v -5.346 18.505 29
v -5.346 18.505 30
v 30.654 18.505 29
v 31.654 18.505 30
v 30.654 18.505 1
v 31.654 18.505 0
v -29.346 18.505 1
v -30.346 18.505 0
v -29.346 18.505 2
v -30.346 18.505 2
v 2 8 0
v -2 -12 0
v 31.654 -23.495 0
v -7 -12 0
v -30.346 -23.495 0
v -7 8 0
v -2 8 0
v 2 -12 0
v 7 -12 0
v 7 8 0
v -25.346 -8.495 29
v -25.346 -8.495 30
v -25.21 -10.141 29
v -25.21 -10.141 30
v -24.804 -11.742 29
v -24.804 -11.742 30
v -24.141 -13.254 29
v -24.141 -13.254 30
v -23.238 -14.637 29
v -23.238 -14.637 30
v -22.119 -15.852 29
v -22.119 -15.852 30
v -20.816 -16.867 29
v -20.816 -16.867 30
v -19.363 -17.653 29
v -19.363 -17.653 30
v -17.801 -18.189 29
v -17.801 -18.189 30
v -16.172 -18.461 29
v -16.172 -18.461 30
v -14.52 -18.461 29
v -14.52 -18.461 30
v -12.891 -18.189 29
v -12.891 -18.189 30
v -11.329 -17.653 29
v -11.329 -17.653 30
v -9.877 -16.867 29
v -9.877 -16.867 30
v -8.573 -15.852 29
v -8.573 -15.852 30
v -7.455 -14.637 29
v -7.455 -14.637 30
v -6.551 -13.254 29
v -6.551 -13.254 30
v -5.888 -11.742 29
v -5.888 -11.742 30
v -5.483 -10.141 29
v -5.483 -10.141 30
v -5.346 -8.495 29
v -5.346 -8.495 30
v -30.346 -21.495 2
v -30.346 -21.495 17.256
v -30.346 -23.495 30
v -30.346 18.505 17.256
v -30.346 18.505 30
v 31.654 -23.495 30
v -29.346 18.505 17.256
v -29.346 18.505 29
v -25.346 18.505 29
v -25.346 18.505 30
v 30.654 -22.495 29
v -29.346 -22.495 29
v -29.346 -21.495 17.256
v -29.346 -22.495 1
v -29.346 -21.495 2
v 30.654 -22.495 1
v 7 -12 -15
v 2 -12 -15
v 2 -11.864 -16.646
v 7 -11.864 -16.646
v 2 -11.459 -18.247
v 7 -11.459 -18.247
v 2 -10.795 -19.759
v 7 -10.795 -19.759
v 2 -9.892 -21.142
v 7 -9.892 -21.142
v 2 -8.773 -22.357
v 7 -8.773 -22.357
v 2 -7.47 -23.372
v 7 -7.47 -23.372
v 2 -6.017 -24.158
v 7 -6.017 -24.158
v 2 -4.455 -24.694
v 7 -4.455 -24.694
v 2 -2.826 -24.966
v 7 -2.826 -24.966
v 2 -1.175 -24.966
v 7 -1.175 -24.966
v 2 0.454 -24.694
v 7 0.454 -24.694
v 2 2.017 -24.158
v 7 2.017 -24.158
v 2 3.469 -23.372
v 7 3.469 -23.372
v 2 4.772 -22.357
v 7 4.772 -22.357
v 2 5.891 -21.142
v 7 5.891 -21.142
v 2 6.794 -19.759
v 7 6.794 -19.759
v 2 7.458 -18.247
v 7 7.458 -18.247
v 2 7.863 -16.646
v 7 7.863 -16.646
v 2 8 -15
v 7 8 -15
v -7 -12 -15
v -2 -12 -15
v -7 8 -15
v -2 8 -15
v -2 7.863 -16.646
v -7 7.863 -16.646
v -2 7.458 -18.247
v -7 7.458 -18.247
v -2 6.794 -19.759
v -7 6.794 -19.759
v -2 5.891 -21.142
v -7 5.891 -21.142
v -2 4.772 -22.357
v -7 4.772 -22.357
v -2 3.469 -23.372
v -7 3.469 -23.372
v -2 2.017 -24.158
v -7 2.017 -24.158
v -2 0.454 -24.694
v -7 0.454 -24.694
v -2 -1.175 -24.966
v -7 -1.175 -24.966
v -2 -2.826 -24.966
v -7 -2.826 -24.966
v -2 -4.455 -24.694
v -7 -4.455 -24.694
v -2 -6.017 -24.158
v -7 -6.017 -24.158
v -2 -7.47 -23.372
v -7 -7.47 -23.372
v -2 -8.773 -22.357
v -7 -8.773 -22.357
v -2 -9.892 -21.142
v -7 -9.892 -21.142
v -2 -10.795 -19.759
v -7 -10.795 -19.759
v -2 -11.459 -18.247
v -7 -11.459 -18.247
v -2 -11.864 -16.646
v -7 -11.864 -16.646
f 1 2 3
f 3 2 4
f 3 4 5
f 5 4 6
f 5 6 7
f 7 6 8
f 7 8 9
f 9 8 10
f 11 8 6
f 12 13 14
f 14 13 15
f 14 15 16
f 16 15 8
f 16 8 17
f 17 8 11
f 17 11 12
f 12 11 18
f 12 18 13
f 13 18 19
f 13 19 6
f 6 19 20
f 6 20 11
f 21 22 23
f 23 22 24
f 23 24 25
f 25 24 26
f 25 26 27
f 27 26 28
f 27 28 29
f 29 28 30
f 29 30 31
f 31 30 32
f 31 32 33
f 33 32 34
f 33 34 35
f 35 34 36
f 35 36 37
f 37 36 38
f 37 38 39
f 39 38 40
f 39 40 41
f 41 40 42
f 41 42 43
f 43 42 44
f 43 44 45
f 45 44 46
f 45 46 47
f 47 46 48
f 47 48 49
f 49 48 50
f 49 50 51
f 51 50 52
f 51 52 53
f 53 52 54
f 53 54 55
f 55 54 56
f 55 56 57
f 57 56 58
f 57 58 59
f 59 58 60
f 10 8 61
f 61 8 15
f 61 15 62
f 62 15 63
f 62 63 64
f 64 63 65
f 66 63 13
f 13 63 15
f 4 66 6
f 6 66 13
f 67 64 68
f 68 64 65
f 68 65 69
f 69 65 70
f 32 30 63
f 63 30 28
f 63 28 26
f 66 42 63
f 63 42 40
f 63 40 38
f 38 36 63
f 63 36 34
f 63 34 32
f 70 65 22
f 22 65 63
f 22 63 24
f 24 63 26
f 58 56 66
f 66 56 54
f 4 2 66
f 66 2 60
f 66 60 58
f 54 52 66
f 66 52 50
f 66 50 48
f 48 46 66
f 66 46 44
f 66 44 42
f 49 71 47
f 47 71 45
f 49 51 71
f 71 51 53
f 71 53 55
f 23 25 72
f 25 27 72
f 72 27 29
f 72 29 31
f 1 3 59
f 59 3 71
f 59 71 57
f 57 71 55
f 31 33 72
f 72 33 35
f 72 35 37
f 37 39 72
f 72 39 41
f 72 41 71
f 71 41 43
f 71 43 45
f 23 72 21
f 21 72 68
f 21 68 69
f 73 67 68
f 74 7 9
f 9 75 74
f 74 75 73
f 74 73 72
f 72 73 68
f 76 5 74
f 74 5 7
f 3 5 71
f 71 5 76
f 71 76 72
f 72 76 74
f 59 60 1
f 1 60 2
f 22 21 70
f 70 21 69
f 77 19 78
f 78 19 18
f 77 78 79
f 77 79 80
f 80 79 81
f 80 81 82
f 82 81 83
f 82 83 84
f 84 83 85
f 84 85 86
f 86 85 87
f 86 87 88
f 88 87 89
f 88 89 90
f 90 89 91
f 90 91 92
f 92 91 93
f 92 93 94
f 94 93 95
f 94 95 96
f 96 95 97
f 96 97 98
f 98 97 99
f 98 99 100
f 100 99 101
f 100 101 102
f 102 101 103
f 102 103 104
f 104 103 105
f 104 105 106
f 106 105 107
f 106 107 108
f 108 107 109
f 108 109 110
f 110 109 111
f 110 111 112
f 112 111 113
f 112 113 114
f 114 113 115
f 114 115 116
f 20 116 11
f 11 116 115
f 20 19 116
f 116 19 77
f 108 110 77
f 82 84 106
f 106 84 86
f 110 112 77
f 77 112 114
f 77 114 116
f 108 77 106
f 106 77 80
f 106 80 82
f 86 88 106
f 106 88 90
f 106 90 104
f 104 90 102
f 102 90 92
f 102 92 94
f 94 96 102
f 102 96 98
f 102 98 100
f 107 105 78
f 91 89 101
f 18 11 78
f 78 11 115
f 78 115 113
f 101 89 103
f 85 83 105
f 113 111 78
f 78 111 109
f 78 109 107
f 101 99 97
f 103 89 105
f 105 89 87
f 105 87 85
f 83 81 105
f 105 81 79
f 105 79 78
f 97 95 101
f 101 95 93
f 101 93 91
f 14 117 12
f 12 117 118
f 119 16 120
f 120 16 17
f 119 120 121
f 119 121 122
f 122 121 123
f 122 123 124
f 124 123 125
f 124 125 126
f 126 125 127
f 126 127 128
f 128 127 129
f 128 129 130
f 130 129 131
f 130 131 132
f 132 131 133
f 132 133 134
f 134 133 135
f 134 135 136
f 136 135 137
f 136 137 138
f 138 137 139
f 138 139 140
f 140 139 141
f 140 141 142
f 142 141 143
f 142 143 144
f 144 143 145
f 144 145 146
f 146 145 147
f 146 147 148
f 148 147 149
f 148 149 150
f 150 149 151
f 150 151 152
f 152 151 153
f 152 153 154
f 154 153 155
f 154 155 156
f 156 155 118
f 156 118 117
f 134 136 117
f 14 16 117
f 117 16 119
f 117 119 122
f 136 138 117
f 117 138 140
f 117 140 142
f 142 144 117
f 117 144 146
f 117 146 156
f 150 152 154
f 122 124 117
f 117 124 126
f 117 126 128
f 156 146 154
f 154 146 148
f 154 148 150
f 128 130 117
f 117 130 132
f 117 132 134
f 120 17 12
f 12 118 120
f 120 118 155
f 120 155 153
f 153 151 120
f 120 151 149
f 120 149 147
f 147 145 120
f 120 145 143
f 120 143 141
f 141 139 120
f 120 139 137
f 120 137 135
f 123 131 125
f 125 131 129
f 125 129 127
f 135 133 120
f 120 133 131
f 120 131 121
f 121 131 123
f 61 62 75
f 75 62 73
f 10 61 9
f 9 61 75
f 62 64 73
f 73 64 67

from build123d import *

# Parameters (mm, degrees)
SKETCH1_W           = 62
SKETCH1_H           = 42
BOSS_EXTRUDE1_DEPTH = 30
SKETCH2_R           = 10
CUT_EXTRUDE1_DEPTH  = 6
CUT_EXTRUDE2_START  = -2
SKETCH3_W           = 60
SKETCH3_H           = 40
CUT_EXTRUDE2_DEPTH  = 27
CUT_EXTRUDE3_REACH  = 62.547
SKETCH4_W           = 60
SKETCH4_H           = 28
SKETCH5_W           = 20
SKETCH5_H           = 1
CUT_EXTRUDE4_DEPTH  = 27
BOSS_EXTRUDE2_START = 2
BOSS_EXTRUDE2_DEPTH = 5
BOSS_EXTRUDE3_START = -7
BOSS_EXTRUDE3_DEPTH = 5
SKETCH10_W          = 15.255500618
SKETCH10_H          = 40
CUT_EXTRUDE5_DEPTH  = 1


with BuildPart() as part:
    # Sketch1 → Boss-Extrude1 (new body)
    with BuildSketch(Plane.XY):
        with Locations((0.653781513, -2.494957983)):
            Rectangle(SKETCH1_W, SKETCH1_H)
    extrude(amount=BOSS_EXTRUDE1_DEPTH)

    # Sketch2 → Cut-Extrude1 (cut)
    with BuildSketch(Plane.XY.offset(30)):
        with Locations((-15.346218487, -8.494957983)):
            Circle(SKETCH2_R)
    extrude(amount=-CUT_EXTRUDE1_DEPTH, mode=Mode.SUBTRACT)

    # Sketch3 → Cut-Extrude2 (cut)
    with BuildSketch(Plane.XY.offset(30).offset(CUT_EXTRUDE2_START)):
        with Locations((0.653781513, -2.494957983)):
            Rectangle(SKETCH3_W, SKETCH3_H)
    extrude(amount=-CUT_EXTRUDE2_DEPTH, mode=Mode.SUBTRACT)

    # Cut-Extrude3: up to this face of the body (flat: up to its plane)
    cut_extrude3_end = Plane(part.part.faces().sort_by_distance((0.653781513, -22.494957983, 14.5))[0])
    # Sketch4 → Cut-Extrude3 (cut, up to the picked face)
    with BuildSketch(Plane(origin=(0, 18.505042017, 0), x_dir=(1, 0, 0), z_dir=(0, 1, 0)), mode=Mode.PRIVATE) as cut_extrude3_sk1:
        with Locations((0.653781513, -15)):
            Rectangle(SKETCH4_W, SKETCH4_H)
    cut_extrude3_tool1 = split(extrude(cut_extrude3_sk1.sketch, amount=-CUT_EXTRUDE3_REACH, mode=Mode.PRIVATE), bisect_by=cut_extrude3_end, keep=Keep.BOTH, mode=Mode.PRIVATE)
    add(cut_extrude3_tool1.solids().sort_by(Axis((0.653782, 18.505042, 15), (0, -1, 0)))[0], mode=Mode.SUBTRACT)

    # Sketch5 → Cut-Extrude4 (cut)
    with BuildSketch(Plane(origin=(0, 18.505042017, 0), x_dir=(1, 0, 0), z_dir=(0, 1, 0))):
        with Locations((-15.346218487, -29.5)):
            Rectangle(SKETCH5_W, SKETCH5_H)
    extrude(amount=-CUT_EXTRUDE4_DEPTH, mode=Mode.SUBTRACT)

    # Sketch7 → Boss-Extrude2 (add)
    with BuildSketch(Plane(origin=(0, 0, 0), x_dir=(0, 0, -1), z_dir=(1, 0, 0)).offset(BOSS_EXTRUDE2_START)):
        with BuildLine():
            Line((0, 7.999642933), (15, 7.999642933))
            ThreePointArc((15, 7.999642933), (25, -2.000357067), (15, -12.000357067))
            Line((15, -12.000357067), (0, -12.000357067))
            Line((0, -12.000357067), (0, 7.999642933))
        make_face()
    extrude(amount=BOSS_EXTRUDE2_DEPTH)

    # Sketch8 → Boss-Extrude3 (add)
    with BuildSketch(Plane(origin=(0, 0, 0), x_dir=(0, 0, -1), z_dir=(1, 0, 0)).offset(BOSS_EXTRUDE3_START)):
        with BuildLine():
            Line((0, -12.000357067), (0, 7.999642933))
            Line((0, 7.999642933), (15, 7.999642933))
            ThreePointArc((15, 7.999642933), (25, -2.000357067), (15, -12.000357067))
            Line((15, -12.000357067), (0, -12.000357067))
        make_face()
    extrude(amount=BOSS_EXTRUDE3_DEPTH)

    # Sketch10 → Cut-Extrude5 (cut)
    with BuildSketch(Plane.ZY.offset(30.346218487)):
        with Locations((9.627750309, -1.494957983)):
            Rectangle(SKETCH10_W, SKETCH10_H)
    extrude(amount=-CUT_EXTRUDE5_DEPTH, mode=Mode.SUBTRACT)


solid = part.part
